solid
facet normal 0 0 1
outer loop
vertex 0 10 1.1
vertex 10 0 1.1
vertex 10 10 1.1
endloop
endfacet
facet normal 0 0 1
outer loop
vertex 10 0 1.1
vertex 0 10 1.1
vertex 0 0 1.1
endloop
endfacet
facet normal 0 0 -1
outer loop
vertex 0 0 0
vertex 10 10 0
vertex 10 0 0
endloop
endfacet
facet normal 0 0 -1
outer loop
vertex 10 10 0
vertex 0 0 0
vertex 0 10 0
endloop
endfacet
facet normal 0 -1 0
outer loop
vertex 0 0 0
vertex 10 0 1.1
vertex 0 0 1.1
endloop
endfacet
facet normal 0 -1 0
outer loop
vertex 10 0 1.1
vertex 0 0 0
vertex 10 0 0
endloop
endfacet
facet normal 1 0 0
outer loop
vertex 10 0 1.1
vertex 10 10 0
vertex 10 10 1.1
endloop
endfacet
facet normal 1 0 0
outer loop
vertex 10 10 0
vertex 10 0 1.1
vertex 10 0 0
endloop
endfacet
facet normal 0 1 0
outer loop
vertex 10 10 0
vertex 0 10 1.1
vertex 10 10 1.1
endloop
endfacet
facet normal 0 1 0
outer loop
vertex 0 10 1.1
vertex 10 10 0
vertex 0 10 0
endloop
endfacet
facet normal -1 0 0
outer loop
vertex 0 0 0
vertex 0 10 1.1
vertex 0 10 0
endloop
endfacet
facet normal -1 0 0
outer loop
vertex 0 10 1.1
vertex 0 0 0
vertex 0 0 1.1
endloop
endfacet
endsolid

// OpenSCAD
/* Warning, this is a very basic generator with a lot of approximation 
input data : [TFBGA, B3B, 10x10x1.1mm, 247, , A, C04-21136A]
generated by com.zoubworld.electronics.cad.model3d.Basic
Date : Sun Feb 15 10:50:49 CET 2026
*/

//body
color("black")
translate([0,0,0])
cube([10.0,10.0,1.1], center=false);
